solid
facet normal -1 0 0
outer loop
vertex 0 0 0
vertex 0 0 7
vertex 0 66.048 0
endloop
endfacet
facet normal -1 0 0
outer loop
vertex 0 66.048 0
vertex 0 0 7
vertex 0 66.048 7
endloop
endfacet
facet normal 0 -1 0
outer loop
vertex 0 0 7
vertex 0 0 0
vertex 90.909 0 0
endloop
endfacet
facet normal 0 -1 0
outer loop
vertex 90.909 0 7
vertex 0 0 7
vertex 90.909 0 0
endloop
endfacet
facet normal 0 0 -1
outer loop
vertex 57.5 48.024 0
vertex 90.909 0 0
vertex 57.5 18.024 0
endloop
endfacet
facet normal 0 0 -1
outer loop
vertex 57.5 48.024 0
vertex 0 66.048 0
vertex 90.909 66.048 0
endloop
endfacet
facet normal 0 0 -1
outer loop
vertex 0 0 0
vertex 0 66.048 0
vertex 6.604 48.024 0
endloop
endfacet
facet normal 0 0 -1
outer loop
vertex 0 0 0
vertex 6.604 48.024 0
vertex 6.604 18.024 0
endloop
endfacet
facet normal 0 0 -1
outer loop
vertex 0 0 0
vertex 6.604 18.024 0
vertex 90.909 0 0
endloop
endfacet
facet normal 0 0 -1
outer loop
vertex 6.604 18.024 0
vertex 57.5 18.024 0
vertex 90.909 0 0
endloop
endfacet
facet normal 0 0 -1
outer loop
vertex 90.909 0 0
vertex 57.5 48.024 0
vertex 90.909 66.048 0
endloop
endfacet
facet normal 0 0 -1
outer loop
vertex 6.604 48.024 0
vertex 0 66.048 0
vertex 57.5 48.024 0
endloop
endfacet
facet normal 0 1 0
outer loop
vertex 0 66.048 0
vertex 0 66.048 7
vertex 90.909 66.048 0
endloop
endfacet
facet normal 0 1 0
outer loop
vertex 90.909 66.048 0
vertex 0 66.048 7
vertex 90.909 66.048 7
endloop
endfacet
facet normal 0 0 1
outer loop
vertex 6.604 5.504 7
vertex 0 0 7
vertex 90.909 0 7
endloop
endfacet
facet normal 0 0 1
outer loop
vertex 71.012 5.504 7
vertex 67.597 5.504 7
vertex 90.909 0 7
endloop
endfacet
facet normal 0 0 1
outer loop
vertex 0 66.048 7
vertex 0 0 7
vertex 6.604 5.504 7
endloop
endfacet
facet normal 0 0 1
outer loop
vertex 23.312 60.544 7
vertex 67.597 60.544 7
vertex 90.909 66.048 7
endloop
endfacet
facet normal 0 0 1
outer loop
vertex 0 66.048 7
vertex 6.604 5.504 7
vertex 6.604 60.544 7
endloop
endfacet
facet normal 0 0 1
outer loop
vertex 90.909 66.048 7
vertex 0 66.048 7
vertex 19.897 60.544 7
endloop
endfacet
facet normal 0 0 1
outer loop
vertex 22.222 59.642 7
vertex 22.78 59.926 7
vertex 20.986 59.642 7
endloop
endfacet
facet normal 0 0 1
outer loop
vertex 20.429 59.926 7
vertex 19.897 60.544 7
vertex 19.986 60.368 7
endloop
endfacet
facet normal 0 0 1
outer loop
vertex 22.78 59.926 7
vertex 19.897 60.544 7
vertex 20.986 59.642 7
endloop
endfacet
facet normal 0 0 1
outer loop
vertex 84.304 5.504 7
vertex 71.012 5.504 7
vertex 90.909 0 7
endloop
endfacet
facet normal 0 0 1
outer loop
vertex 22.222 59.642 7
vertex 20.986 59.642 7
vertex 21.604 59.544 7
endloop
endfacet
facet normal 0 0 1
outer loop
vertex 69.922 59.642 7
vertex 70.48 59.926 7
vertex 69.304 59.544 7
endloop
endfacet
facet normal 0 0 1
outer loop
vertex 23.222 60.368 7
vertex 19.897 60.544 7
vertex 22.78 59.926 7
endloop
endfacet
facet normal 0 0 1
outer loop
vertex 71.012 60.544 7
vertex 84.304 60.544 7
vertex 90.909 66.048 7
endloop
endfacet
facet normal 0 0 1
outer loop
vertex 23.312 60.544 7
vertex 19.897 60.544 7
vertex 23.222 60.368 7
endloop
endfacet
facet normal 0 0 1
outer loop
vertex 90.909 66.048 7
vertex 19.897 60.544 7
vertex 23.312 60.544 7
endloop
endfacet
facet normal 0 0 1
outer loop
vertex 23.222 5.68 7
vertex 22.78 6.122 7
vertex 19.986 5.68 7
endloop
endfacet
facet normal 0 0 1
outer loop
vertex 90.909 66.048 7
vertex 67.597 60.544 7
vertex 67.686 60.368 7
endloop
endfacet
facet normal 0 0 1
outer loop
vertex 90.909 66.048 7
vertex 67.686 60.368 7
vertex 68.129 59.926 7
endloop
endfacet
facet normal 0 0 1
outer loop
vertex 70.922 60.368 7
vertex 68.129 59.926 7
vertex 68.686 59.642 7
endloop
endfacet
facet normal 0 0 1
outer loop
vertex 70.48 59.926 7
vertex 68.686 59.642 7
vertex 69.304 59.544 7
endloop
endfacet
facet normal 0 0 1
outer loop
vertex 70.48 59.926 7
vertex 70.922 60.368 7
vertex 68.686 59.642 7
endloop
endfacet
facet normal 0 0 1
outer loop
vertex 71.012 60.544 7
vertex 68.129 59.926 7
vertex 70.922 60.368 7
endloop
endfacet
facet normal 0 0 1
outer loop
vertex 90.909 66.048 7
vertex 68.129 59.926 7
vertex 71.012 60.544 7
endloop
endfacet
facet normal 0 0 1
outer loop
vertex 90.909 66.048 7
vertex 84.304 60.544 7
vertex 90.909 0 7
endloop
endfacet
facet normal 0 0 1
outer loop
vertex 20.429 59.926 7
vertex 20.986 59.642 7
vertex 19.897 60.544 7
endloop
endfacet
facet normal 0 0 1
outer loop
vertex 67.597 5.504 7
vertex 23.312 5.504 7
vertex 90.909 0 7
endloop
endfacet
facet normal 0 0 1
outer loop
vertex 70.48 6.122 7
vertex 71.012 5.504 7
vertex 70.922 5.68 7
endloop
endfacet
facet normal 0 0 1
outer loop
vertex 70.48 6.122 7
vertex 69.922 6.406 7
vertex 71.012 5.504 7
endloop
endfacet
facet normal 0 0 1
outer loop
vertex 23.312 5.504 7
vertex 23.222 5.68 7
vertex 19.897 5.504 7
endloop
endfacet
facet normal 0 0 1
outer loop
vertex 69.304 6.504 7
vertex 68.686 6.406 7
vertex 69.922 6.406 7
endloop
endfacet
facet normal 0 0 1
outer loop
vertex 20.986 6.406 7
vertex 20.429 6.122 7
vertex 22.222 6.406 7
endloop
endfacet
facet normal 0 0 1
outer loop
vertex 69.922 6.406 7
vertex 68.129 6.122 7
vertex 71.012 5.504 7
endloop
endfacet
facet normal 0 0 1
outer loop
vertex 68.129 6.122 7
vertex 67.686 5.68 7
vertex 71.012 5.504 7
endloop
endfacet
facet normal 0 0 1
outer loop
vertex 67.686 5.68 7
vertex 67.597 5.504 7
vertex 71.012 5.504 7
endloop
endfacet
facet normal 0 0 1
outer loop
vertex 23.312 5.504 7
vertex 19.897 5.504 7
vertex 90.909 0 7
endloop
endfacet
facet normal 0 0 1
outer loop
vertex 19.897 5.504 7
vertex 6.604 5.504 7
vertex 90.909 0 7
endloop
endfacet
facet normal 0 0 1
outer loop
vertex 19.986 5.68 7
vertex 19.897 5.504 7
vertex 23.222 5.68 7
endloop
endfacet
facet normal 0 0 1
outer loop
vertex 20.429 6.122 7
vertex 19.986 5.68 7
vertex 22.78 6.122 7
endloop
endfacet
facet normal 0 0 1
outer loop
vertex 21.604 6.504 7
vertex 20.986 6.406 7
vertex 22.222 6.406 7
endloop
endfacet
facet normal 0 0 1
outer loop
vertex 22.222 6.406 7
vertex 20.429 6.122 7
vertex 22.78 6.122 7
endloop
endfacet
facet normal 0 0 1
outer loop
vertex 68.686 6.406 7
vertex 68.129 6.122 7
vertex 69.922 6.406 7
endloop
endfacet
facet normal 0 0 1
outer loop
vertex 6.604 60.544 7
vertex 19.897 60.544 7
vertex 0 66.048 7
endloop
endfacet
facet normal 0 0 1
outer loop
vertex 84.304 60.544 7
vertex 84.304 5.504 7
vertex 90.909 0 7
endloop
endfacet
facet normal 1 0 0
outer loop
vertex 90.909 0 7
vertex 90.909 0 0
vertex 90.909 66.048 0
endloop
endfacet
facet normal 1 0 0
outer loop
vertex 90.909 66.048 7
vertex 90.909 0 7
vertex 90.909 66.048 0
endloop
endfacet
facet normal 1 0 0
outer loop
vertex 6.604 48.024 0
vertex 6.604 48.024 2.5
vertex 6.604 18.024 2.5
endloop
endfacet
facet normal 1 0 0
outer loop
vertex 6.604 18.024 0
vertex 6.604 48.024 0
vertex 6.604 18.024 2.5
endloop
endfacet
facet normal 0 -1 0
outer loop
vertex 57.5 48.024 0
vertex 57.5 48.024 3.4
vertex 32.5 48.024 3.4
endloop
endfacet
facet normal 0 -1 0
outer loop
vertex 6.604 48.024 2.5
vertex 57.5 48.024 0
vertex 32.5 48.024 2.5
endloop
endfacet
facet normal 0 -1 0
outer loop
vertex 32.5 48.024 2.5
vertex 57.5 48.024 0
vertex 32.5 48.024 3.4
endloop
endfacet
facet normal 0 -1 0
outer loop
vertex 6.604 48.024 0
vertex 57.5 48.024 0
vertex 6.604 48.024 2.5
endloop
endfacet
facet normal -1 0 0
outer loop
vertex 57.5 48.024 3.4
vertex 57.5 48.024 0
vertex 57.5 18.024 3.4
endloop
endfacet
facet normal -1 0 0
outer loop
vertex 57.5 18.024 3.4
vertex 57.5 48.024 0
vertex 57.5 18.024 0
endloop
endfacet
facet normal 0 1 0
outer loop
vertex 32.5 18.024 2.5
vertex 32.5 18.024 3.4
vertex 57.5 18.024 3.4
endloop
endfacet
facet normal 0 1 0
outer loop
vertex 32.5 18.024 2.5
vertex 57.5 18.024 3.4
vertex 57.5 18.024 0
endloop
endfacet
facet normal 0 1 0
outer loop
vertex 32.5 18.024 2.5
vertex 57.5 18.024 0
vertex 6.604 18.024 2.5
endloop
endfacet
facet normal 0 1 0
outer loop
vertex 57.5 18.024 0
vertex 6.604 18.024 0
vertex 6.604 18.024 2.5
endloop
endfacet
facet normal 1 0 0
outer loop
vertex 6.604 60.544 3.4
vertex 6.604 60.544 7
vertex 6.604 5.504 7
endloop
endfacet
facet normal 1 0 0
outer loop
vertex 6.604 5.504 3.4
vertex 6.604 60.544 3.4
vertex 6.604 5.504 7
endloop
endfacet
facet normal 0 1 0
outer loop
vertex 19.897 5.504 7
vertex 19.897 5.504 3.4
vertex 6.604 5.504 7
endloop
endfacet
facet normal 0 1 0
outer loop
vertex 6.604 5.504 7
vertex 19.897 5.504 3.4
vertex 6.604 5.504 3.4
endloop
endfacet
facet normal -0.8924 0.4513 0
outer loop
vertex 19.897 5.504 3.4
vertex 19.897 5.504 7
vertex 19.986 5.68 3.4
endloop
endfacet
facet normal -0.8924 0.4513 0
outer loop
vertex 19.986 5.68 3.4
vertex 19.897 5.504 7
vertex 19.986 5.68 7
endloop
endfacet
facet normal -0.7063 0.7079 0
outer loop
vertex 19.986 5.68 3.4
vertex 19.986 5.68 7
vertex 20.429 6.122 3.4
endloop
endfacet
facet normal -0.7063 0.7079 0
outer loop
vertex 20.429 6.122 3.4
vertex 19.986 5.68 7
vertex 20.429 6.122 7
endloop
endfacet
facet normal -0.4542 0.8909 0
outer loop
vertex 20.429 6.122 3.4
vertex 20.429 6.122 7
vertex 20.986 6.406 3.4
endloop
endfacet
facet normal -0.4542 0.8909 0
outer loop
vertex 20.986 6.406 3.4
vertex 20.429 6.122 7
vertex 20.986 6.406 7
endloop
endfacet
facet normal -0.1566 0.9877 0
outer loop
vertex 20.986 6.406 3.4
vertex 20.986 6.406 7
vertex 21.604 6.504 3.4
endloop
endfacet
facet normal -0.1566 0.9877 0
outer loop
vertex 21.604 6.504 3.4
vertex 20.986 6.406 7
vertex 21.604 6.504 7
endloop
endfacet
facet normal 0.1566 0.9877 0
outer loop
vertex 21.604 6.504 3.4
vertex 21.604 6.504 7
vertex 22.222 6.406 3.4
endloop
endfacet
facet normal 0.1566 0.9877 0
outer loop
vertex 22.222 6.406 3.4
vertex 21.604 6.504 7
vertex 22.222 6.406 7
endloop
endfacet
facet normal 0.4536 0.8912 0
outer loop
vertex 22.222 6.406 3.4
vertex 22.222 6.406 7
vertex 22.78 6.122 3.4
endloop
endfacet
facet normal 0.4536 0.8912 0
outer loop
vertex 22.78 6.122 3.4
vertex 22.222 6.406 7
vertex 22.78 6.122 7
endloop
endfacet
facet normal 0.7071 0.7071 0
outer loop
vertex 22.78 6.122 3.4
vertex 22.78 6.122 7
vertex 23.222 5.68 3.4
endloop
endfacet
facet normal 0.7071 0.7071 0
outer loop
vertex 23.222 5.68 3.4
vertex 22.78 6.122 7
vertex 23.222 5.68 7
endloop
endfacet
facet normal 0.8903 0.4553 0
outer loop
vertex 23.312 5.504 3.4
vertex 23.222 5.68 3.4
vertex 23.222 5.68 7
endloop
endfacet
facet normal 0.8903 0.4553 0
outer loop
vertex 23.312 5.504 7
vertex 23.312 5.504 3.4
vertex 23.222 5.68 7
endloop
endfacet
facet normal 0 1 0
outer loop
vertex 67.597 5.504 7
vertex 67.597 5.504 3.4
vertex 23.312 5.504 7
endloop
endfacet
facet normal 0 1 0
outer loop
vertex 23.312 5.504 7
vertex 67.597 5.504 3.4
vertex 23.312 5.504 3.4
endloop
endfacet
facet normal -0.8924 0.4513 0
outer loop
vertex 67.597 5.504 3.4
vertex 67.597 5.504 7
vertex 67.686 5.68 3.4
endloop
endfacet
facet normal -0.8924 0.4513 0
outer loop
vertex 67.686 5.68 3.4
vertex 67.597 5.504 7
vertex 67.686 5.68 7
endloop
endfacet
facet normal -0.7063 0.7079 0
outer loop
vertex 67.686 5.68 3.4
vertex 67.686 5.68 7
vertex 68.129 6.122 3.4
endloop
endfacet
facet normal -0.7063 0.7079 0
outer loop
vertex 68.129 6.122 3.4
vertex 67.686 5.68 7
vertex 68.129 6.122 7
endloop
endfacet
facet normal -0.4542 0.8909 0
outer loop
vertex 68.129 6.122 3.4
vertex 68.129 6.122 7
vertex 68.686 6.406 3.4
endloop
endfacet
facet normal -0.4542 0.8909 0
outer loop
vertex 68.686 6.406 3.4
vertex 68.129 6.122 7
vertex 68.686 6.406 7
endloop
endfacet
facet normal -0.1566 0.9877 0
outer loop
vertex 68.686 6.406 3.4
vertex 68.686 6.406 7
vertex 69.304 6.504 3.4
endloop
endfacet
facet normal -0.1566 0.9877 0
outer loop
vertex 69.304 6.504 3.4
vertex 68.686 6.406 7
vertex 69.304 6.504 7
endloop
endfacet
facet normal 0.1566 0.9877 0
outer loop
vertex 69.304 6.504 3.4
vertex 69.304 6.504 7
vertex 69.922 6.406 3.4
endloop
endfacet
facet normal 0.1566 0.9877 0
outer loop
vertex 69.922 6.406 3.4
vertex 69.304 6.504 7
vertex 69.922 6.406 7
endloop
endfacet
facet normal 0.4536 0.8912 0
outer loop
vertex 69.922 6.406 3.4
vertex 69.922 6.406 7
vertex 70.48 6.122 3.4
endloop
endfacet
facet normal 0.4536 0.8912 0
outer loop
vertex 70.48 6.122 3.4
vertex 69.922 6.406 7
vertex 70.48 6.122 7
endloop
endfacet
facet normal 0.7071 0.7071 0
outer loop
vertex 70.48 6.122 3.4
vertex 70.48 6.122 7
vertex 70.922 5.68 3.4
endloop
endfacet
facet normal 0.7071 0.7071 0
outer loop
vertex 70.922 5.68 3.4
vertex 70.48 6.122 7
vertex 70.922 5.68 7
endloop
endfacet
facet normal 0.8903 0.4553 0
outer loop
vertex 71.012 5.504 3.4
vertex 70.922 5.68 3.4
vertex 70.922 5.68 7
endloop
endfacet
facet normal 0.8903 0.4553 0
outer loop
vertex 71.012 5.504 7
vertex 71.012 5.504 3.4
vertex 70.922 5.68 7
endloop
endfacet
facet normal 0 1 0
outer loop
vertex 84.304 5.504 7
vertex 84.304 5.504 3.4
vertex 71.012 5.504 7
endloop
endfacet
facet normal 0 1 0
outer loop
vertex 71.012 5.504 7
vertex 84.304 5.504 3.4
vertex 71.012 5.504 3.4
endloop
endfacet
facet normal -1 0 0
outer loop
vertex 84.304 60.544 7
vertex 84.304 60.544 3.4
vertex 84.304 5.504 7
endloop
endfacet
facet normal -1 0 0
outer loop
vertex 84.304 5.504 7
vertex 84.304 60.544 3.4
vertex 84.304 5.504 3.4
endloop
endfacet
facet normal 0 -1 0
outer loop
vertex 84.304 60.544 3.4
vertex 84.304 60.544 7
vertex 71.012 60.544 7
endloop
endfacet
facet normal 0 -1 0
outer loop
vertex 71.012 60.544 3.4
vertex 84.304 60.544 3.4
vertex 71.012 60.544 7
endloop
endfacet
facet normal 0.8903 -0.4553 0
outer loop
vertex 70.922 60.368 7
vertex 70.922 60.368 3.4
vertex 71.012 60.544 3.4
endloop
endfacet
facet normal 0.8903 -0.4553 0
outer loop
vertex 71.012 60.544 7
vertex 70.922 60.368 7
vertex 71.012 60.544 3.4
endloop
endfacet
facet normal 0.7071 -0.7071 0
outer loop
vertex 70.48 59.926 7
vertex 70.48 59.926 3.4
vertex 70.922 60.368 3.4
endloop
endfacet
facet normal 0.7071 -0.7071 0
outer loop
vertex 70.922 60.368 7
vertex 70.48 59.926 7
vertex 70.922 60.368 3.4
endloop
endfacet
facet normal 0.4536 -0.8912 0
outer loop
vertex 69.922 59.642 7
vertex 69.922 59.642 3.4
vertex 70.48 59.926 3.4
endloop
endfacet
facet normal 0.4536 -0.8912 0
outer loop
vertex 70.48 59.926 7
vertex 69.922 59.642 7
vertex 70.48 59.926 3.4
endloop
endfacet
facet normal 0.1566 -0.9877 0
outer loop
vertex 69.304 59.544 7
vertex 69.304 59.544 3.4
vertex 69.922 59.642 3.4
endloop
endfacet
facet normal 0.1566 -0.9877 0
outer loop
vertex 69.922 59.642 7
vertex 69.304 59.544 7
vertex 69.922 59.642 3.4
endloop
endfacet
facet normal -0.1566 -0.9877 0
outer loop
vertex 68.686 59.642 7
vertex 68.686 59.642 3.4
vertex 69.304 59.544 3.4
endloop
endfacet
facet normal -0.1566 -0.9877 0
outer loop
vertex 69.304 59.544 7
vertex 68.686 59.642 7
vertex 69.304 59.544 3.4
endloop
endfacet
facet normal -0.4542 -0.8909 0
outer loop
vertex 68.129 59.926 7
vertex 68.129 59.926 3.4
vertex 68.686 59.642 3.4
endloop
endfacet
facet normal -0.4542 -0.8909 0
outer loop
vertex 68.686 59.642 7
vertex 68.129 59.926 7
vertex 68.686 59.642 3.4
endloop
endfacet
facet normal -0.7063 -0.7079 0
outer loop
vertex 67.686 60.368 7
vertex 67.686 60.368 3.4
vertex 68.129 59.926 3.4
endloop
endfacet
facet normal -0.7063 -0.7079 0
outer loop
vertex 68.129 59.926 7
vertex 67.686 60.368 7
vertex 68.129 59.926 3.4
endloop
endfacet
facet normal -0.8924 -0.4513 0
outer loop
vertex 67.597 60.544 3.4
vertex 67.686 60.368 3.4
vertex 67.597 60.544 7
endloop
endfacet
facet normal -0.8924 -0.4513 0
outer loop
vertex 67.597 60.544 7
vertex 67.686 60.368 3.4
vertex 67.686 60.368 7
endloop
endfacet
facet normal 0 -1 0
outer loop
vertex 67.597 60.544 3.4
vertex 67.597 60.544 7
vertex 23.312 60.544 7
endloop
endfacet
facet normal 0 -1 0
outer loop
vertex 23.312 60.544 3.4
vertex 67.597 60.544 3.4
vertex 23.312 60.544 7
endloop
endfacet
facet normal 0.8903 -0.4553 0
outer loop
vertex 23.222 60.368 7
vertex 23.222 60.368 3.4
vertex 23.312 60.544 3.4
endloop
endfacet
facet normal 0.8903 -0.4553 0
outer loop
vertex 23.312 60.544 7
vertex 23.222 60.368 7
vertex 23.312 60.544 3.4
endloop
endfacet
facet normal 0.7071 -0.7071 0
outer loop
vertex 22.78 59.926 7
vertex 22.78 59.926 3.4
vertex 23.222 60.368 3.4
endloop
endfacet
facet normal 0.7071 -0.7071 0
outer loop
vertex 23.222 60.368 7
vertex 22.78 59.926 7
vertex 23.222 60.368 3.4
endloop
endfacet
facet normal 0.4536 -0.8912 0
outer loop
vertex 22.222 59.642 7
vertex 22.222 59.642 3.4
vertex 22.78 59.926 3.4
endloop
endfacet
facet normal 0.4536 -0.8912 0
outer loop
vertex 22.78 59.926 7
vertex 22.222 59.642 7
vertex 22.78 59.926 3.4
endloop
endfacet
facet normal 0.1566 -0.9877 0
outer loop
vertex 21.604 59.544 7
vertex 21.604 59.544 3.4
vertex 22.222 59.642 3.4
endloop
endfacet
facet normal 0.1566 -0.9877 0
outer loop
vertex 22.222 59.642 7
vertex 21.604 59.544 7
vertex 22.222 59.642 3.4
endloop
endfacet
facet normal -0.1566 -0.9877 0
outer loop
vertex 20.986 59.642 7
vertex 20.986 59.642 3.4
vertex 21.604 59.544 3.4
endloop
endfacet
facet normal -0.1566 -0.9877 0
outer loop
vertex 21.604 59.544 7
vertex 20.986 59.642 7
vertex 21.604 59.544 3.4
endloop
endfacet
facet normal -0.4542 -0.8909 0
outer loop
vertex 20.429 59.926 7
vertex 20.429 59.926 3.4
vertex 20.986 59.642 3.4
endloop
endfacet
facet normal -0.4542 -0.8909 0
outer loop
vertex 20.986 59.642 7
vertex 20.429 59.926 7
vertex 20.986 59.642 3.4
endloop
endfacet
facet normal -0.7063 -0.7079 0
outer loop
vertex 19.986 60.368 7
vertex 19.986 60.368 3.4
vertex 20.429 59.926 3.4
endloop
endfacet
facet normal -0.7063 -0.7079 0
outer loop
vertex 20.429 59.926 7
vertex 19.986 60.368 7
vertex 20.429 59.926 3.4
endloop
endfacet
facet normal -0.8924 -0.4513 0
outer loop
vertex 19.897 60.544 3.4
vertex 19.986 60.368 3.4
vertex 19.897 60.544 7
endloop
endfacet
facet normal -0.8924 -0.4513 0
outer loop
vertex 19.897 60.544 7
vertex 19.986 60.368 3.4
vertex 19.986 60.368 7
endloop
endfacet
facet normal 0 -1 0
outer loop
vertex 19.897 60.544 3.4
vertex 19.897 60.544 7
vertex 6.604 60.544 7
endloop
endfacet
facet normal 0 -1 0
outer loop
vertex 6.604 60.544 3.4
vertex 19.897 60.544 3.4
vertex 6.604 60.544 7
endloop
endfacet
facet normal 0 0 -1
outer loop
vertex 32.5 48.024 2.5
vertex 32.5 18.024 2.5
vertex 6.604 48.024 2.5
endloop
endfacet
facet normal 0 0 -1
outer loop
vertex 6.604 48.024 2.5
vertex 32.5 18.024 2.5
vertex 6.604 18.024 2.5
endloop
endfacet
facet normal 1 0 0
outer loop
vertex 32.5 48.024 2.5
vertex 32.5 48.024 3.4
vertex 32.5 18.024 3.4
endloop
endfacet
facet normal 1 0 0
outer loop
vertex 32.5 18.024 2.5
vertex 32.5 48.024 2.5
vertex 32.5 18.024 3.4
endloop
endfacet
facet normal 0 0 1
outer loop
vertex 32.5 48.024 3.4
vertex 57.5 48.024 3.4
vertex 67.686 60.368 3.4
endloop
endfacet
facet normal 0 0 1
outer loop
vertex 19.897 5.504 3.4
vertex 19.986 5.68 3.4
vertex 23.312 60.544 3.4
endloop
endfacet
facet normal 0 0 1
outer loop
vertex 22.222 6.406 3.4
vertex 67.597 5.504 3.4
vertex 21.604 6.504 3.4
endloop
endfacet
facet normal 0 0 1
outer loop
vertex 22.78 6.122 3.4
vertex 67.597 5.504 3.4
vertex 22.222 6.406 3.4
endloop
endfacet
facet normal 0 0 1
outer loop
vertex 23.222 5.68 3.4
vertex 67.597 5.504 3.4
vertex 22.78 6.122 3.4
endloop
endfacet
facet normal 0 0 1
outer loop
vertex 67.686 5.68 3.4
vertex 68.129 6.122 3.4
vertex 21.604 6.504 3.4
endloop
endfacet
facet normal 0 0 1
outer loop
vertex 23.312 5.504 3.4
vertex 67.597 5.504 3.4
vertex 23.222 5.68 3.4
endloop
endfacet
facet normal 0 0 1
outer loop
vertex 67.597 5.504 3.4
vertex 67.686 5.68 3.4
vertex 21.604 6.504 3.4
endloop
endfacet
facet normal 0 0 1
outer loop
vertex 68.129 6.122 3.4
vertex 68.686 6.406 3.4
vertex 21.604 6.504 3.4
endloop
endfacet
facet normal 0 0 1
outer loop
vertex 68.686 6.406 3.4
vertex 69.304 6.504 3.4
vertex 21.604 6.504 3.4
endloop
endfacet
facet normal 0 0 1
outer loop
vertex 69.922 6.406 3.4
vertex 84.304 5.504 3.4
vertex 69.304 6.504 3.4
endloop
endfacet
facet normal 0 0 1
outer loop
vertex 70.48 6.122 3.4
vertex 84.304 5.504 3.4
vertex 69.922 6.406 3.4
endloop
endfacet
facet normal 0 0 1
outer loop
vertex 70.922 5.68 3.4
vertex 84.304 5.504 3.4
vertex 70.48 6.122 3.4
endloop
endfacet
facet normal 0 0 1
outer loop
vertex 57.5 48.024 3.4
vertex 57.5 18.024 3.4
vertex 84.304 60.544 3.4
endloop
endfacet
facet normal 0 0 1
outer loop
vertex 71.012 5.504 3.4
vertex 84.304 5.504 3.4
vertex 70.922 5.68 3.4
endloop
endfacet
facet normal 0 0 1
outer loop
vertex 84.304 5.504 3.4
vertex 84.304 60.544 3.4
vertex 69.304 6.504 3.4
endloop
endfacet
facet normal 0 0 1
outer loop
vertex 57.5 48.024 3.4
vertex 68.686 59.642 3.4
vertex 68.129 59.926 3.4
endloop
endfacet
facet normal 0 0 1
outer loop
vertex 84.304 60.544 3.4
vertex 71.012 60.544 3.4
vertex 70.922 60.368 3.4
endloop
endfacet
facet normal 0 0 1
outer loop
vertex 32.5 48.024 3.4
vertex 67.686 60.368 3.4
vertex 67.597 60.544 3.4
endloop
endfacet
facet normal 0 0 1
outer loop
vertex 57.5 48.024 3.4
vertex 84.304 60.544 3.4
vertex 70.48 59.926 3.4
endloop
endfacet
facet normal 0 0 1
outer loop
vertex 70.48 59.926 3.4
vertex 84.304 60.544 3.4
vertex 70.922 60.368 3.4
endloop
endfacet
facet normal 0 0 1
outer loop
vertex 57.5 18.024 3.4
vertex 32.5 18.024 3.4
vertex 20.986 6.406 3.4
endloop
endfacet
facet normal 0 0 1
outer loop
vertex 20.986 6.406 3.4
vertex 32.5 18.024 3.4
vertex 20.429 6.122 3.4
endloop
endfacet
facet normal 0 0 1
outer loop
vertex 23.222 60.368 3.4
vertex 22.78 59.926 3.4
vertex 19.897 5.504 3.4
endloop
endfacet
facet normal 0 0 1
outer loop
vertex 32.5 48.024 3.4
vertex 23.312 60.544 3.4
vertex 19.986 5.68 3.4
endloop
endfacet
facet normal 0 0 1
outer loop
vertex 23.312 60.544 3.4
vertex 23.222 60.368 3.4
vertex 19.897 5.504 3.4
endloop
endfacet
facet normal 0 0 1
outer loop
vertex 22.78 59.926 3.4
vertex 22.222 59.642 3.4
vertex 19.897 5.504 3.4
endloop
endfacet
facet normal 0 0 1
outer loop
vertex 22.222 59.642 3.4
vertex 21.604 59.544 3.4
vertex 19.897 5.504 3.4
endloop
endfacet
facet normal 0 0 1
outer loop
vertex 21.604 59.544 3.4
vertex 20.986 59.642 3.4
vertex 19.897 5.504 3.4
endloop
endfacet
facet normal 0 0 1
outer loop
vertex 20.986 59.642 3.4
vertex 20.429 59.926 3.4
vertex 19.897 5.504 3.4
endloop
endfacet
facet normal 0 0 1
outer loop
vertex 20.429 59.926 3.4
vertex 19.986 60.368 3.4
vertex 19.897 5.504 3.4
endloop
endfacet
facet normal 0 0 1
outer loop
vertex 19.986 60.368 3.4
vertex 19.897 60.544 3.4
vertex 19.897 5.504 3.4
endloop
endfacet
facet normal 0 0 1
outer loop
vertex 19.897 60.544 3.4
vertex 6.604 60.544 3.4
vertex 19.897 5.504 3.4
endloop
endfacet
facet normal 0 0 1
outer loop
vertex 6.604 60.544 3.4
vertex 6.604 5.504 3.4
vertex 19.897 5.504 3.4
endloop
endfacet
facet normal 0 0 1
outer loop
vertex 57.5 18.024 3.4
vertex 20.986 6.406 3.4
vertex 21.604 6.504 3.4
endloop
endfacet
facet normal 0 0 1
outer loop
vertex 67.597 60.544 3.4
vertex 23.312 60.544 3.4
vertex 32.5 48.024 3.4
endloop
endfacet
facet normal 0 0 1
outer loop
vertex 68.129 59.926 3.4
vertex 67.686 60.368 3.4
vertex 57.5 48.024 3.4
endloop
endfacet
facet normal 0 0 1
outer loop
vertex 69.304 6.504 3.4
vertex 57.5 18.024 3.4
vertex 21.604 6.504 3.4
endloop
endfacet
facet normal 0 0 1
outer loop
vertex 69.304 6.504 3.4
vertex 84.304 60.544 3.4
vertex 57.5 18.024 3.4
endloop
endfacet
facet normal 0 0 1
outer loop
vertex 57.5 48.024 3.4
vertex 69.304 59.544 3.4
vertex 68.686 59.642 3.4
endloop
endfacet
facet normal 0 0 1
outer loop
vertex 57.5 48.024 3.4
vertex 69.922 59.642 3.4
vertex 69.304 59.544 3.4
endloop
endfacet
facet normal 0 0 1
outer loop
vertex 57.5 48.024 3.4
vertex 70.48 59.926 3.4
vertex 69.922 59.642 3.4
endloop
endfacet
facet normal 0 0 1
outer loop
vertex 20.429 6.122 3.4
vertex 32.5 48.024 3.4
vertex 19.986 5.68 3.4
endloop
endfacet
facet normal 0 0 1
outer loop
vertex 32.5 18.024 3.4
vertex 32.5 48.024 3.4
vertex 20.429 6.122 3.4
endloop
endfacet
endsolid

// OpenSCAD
screenX = 77.7;
screenY = 55.04;
screenZ = 3.6;

frameX = screenX * 1.17;
frameY = screenY * 1.2;
frameZ = 7;

backHoleX = 50;
backHoleY = 30;
backHoleZ = 5;

bumpRadius = 2;

module screen() {
	cube([screenX, screenY, screenZ + 2]);
}

module frame() {
	
	difference() {
		cube([frameX, frameY, frameZ]);
		translate([(frameX - screenX) / 2, (frameY - screenY) / 2, frameZ - screenZ]) screen();
		translate([(frameX - screenX) / 2, (frameY / 2) - (backHoleY / 2), -backHoleZ / 2]) cube([backHoleX, backHoleY, backHoleZ]);
		translate([backHoleX * .65, (frameY / 2) - (backHoleY / 2), -backHoleZ/2]) cube([backHoleX / 2, backHoleY, backHoleZ * 2]);

	}

	translate([((frameX - screenX) / 2) + 15, ((frameY - screenY) / 2) - (bumpRadius / 2), 0]) cylinder(h=frameZ, r=bumpRadius, $fn=20);
	translate([((frameX - screenX) / 2) + 15, frameY - ((frameY - screenY) / 2) + (bumpRadius / 2) , 0]) cylinder(h=frameZ, r=bumpRadius, $fn=20);
	translate([frameX - ((frameX - screenX) / 2) - 15, ((frameY - screenY) / 2) - (bumpRadius / 2), 0]) cylinder(h=frameZ, r=bumpRadius, $fn=20);
	translate([frameX - ((frameX - screenX) / 2) - 15, frameY - ((frameY - screenY) / 2) + (bumpRadius / 2) , 0]) cylinder(h=frameZ, r=bumpRadius, $fn=20);

}


frame();
